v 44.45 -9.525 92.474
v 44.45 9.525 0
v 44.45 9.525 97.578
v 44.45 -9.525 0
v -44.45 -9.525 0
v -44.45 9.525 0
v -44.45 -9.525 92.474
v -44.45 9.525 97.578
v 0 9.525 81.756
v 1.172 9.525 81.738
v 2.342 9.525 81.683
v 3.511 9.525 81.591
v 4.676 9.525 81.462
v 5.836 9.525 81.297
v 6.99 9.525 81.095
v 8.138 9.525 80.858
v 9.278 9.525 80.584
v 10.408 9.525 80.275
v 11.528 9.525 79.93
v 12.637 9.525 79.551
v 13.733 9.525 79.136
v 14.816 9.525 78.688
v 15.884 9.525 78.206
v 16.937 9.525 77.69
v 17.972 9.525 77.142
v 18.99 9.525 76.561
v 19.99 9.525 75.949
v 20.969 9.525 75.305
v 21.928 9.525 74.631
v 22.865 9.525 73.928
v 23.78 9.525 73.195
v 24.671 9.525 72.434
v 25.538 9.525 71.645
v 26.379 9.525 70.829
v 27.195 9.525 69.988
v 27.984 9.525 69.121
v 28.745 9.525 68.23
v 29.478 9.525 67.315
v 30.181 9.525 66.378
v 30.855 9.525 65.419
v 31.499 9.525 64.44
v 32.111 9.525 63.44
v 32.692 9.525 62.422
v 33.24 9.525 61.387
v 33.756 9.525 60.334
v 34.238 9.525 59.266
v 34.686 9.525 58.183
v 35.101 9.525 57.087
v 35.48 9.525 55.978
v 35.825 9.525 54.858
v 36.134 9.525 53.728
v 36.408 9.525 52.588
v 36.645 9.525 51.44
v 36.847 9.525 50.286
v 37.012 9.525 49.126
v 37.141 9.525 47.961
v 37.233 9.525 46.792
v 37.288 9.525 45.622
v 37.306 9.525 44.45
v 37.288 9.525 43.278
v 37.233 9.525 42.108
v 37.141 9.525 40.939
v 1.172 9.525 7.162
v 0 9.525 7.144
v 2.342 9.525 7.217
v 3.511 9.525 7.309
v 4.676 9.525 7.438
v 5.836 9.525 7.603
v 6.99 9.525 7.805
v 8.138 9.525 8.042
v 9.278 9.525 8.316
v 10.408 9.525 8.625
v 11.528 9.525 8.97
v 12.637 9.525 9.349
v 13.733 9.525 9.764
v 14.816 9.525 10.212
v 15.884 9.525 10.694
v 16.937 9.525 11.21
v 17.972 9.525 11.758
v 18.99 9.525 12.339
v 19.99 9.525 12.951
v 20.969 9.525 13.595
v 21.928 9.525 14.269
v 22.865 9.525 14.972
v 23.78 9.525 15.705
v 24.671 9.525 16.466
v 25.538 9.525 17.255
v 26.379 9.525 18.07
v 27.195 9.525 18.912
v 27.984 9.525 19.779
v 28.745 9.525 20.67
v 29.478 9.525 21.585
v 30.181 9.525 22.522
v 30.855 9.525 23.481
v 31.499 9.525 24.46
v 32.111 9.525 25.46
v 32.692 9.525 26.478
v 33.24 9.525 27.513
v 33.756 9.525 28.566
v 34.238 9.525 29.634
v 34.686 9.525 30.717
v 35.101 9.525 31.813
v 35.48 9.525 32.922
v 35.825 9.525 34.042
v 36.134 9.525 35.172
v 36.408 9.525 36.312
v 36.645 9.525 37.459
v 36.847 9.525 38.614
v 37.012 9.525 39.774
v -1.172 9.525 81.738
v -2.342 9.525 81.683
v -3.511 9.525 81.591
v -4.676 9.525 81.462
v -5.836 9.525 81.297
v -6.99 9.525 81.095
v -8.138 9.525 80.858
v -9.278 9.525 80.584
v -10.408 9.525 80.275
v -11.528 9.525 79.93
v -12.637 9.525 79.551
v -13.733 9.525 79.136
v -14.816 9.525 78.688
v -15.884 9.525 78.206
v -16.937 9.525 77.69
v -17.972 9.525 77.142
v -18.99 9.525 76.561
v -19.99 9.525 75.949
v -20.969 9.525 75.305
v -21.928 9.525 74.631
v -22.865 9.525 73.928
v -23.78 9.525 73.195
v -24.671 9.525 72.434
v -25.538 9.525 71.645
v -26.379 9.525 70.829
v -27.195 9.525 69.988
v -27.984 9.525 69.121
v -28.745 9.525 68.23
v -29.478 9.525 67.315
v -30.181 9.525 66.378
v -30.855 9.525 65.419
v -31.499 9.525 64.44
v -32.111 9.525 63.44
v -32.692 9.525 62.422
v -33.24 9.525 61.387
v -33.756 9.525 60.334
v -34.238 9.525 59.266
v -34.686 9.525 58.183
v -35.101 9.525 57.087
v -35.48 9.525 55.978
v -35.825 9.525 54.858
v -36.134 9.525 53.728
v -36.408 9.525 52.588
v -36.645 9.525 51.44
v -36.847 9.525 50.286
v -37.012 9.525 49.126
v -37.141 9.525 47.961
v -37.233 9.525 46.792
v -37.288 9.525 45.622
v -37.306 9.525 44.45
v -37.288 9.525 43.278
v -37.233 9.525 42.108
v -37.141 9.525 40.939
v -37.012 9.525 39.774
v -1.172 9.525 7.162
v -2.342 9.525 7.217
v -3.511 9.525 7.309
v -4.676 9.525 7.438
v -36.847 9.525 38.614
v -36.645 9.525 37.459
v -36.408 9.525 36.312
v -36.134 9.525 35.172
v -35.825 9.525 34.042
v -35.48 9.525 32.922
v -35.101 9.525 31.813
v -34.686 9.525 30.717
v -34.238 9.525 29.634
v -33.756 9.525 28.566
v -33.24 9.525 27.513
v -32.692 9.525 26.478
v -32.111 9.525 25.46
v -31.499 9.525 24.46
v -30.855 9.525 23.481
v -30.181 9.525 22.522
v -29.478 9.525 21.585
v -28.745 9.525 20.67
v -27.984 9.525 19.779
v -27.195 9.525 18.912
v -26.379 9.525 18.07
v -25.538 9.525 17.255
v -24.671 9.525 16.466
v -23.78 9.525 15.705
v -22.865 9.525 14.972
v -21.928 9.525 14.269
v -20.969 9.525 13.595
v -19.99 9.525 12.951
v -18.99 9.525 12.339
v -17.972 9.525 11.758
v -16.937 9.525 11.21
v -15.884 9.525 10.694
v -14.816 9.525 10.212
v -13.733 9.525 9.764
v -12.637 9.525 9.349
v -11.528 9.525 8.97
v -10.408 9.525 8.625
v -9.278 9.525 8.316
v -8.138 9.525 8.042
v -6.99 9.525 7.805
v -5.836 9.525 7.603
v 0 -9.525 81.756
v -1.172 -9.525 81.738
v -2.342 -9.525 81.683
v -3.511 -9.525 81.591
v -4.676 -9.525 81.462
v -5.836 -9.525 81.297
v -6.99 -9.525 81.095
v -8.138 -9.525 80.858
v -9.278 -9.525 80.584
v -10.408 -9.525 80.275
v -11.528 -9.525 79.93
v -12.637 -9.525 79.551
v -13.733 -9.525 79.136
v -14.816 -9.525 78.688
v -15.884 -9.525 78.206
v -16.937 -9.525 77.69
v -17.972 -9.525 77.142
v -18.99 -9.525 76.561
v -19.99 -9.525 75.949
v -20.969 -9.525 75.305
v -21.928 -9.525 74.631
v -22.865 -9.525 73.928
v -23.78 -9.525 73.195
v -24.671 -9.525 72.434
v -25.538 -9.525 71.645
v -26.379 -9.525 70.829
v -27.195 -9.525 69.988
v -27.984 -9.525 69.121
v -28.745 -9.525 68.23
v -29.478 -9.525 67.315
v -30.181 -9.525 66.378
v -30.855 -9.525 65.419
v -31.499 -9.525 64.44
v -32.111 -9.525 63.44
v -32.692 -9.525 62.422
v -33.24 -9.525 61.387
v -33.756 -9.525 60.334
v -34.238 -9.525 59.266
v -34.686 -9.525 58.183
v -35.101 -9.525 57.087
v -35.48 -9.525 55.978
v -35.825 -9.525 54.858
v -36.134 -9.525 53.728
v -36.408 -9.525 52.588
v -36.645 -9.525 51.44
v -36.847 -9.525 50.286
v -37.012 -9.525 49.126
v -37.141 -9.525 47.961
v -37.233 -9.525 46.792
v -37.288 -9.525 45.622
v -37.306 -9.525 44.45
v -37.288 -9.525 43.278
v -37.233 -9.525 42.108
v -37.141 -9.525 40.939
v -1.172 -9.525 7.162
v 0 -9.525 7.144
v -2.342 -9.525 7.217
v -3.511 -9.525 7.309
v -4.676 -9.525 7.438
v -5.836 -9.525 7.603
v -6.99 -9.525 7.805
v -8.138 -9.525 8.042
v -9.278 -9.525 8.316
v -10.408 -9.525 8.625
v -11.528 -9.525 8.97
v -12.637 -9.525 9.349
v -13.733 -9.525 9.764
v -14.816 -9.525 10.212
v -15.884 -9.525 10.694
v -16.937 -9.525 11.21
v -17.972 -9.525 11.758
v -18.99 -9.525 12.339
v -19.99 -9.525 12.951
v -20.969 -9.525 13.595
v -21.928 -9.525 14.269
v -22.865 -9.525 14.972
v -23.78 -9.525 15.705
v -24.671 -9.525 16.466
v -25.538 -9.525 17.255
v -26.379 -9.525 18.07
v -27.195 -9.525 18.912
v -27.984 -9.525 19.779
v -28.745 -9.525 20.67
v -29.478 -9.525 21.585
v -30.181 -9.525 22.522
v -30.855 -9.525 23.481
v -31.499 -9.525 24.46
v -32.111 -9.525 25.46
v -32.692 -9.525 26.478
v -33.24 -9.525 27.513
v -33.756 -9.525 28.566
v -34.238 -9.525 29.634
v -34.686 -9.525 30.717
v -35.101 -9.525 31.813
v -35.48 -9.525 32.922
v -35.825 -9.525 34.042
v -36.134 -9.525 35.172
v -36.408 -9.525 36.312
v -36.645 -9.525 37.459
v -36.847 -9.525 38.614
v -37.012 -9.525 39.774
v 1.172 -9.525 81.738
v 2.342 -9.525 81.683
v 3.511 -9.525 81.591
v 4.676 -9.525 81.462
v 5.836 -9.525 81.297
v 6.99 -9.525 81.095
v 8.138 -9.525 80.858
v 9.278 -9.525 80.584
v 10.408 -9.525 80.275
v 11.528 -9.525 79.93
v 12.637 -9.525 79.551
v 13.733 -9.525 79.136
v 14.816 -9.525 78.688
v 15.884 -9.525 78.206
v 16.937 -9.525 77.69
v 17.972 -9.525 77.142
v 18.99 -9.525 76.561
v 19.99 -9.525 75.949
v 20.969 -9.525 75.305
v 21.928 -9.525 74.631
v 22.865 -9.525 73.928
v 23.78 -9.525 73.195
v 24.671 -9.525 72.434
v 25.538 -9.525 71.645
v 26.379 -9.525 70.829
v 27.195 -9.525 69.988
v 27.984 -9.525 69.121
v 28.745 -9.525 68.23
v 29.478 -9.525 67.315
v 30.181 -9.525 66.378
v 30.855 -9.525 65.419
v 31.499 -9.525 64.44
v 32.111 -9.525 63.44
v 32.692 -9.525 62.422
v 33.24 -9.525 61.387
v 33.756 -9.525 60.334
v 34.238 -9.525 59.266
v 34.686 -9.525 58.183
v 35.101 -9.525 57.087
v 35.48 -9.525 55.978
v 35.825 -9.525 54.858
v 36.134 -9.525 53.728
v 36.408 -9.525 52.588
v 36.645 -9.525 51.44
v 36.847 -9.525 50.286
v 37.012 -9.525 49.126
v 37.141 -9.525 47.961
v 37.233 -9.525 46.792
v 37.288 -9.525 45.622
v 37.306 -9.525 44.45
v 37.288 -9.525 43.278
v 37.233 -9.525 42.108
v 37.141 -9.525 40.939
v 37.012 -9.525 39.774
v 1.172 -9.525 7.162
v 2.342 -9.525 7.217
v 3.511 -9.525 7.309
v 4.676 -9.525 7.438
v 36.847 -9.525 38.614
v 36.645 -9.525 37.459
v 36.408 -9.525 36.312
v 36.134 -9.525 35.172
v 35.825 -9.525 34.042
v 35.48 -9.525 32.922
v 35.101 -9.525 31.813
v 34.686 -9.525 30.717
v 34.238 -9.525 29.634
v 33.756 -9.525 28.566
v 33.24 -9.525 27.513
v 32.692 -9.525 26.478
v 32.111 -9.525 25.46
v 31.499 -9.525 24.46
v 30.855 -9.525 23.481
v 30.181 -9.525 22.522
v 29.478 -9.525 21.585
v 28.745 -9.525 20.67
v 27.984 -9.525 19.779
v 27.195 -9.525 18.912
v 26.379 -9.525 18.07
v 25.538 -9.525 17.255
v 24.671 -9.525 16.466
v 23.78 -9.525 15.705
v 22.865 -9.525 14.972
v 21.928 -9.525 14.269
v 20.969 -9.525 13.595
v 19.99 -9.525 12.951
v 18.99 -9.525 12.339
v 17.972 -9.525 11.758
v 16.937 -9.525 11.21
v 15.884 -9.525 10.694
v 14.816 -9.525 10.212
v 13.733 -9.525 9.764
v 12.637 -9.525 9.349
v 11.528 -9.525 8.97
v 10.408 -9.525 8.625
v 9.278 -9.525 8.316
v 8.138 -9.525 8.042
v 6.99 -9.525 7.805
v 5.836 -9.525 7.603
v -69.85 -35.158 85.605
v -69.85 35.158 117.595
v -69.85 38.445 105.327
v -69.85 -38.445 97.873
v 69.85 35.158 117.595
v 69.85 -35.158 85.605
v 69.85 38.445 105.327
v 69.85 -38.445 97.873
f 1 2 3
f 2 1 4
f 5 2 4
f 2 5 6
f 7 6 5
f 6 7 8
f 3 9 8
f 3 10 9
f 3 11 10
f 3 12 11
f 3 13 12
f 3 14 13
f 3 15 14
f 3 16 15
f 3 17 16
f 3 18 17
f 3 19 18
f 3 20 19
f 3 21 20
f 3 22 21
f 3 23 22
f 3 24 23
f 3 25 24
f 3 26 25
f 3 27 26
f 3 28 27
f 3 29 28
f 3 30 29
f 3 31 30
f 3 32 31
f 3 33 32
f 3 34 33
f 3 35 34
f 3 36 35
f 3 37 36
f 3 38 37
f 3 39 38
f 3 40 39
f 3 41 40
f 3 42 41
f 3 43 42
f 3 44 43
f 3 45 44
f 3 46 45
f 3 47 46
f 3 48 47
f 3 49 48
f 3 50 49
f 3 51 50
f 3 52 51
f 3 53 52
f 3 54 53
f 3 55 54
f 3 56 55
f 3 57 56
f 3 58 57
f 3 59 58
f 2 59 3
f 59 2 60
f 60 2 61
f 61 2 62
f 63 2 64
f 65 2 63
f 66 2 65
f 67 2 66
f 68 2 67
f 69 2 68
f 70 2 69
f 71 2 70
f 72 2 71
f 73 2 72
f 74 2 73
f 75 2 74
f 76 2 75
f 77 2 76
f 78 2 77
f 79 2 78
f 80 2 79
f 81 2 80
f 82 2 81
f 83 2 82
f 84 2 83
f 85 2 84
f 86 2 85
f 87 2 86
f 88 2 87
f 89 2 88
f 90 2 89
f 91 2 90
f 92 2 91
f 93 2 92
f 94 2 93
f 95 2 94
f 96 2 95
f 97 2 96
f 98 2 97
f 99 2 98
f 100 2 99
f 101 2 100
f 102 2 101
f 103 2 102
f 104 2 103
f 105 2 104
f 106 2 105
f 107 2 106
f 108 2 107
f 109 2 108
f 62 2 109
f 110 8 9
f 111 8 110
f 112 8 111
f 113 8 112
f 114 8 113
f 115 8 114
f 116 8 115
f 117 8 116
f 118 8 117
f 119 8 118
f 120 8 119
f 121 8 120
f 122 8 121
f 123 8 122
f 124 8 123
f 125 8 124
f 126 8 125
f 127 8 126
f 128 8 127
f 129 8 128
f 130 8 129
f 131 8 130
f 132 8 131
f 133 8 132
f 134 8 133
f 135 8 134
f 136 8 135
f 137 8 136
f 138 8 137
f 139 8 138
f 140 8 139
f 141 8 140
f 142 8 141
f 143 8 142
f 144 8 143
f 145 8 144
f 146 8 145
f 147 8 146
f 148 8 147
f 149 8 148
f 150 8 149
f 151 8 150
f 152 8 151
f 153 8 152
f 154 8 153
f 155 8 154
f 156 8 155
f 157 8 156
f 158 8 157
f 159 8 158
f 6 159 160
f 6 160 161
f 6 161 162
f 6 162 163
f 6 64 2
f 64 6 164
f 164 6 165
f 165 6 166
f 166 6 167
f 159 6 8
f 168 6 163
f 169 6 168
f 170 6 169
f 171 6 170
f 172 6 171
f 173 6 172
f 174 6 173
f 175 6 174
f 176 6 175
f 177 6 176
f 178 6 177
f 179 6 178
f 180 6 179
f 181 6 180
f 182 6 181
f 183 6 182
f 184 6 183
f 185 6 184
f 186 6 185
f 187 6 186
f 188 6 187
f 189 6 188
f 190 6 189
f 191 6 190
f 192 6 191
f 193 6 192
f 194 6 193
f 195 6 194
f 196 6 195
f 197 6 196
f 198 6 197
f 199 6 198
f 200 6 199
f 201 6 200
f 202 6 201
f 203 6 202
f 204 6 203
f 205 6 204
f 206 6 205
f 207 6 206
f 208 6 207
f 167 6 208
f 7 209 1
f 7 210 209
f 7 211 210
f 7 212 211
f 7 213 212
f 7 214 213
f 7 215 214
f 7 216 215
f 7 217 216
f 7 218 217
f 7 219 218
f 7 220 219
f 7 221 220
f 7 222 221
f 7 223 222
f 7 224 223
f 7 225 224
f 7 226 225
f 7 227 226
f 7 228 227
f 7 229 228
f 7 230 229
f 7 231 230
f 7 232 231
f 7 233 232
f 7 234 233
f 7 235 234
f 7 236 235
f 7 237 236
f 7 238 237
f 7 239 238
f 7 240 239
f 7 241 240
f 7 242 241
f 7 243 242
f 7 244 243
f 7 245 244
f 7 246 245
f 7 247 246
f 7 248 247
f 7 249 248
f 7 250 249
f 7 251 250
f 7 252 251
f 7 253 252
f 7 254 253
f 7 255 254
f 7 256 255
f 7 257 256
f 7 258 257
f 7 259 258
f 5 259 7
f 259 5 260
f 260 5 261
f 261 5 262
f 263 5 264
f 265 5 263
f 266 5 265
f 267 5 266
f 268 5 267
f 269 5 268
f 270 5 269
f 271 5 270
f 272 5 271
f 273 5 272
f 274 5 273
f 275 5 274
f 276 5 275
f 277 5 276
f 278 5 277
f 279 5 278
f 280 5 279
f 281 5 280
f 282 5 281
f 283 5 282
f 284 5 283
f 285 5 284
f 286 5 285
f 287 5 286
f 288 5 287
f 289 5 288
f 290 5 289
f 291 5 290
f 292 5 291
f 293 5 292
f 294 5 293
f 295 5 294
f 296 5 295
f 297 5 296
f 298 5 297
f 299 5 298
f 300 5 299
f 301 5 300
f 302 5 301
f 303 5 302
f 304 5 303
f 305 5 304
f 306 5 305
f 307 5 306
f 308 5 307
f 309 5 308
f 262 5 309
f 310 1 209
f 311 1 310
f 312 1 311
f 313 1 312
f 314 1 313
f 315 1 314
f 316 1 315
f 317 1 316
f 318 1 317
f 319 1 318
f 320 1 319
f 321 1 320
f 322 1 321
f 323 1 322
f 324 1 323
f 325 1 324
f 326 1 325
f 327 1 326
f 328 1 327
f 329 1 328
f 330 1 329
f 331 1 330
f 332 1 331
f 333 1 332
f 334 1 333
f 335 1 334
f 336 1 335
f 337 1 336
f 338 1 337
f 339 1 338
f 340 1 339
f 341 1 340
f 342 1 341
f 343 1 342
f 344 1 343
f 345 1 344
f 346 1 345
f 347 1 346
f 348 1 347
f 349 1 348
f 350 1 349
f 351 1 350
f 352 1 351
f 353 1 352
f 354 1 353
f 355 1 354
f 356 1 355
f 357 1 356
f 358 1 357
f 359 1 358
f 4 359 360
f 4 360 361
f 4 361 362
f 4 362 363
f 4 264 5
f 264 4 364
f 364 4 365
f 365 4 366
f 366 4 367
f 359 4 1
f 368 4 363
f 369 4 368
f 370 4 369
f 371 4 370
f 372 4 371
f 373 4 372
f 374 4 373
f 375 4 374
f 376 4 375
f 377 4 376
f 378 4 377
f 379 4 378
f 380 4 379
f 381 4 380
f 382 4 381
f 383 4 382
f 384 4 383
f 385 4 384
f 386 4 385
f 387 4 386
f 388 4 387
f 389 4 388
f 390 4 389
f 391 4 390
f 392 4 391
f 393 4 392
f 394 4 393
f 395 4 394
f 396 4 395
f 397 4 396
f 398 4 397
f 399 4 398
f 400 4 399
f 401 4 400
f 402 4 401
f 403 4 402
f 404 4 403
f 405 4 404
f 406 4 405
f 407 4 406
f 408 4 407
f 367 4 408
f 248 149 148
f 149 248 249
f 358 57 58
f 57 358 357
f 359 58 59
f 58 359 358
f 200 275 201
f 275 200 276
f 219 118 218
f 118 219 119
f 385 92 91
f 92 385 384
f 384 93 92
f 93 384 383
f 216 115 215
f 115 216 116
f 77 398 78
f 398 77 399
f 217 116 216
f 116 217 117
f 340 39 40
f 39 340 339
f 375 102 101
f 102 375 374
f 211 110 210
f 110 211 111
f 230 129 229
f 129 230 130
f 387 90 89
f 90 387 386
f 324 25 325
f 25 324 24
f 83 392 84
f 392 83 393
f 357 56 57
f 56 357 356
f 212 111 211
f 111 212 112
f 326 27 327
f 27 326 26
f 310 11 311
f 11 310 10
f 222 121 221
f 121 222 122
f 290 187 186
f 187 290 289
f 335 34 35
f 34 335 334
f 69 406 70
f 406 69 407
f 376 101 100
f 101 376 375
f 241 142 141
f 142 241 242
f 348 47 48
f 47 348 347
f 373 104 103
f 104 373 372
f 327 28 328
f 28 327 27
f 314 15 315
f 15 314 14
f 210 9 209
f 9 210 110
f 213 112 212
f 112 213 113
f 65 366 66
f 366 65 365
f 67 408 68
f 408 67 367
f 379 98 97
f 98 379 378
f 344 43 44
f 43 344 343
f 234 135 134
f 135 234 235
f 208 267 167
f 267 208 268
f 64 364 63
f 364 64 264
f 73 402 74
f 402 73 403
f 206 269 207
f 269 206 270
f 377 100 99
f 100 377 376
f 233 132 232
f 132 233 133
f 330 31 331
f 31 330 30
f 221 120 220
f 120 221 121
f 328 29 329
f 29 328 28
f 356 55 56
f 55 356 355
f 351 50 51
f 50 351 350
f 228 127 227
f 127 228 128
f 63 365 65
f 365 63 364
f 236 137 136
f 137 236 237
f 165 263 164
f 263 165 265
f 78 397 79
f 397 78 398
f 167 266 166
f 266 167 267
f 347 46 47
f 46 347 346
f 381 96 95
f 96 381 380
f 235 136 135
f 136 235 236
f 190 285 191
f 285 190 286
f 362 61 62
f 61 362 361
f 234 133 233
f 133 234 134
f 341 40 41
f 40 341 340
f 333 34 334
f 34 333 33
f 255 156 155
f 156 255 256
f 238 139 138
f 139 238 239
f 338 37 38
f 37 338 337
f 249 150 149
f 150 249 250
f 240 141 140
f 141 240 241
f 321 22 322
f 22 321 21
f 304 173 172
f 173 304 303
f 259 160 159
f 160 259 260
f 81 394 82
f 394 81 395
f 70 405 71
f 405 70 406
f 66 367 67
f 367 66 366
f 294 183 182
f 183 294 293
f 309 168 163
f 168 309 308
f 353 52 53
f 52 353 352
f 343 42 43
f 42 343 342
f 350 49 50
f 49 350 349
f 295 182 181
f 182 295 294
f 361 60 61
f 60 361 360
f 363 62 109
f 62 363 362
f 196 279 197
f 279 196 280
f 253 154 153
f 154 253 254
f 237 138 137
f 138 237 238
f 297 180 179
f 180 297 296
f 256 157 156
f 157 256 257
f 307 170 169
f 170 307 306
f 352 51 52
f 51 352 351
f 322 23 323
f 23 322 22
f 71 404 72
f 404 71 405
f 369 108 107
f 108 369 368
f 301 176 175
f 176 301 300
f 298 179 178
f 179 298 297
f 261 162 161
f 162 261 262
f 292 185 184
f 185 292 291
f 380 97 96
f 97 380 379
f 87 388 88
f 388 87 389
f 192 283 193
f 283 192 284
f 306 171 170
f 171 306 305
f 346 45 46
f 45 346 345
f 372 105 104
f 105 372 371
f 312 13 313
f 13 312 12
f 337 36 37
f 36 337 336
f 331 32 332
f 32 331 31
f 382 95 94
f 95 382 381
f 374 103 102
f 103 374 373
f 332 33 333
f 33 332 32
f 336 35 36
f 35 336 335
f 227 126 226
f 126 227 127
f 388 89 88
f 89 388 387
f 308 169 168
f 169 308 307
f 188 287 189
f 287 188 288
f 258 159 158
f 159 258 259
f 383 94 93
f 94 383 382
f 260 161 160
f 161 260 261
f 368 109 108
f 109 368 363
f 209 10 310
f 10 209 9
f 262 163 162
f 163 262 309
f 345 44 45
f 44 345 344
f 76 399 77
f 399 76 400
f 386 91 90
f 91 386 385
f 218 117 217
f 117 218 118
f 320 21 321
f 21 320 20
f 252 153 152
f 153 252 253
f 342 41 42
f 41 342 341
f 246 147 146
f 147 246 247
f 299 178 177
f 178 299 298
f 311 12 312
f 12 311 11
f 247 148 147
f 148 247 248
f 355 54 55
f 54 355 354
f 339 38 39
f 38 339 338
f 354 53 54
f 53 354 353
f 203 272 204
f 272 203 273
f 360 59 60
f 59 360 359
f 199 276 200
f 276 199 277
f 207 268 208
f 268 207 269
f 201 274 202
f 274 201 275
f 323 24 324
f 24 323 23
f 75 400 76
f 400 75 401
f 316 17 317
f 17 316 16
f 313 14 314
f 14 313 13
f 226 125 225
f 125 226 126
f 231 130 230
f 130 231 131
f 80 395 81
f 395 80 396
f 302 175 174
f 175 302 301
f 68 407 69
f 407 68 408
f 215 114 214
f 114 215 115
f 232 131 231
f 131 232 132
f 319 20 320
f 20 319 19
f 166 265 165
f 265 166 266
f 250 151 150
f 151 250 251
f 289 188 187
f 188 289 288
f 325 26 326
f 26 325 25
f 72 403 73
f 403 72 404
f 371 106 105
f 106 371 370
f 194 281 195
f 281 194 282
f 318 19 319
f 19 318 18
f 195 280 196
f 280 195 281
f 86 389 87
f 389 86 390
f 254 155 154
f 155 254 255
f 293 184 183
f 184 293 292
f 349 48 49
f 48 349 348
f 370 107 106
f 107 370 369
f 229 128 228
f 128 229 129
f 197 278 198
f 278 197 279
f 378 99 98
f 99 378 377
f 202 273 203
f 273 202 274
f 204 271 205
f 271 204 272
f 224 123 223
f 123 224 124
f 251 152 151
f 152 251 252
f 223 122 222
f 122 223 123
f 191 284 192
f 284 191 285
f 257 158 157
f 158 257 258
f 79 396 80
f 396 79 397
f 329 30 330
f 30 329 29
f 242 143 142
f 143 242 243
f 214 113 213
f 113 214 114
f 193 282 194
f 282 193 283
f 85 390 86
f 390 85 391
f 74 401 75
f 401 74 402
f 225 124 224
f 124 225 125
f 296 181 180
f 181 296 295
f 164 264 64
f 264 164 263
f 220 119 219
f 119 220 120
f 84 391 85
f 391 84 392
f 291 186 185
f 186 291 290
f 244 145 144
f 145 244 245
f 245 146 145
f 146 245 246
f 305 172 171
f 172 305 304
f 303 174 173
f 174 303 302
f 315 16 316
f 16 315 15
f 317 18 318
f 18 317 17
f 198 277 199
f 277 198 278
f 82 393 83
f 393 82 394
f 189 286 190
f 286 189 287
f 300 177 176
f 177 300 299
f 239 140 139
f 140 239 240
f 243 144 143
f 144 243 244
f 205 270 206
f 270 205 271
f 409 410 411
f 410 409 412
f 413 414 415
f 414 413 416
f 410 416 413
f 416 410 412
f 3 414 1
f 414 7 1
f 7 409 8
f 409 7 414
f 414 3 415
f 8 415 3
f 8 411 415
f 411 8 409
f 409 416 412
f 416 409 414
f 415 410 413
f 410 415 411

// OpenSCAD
clock_diameter = 2.9375;
width = 3.5;
depth = 0.75;
height = 4;

base_width = 5.5;
base_height = 0.5;
base_depth = 3;
base_angle = 15;

in_to_mm = 2.54 * 10;

$fn = 200;

module model() {
difference() {
  // clock frame
  translate([0, 0, height/2])
  cube([width, depth, height], center=true);
  
  // clock hole
  margin = (width-clock_diameter)/2;
  translate([0, 0, clock_diameter/2+margin])
  rotate([90])
  cylinder(h=2*depth, d=clock_diameter, center=true);
}

// base
translate([0, 0, height])
rotate([base_angle, 0, 0])
cube([base_width, base_depth, base_height], center=true);
}

scale(in_to_mm)
model();
